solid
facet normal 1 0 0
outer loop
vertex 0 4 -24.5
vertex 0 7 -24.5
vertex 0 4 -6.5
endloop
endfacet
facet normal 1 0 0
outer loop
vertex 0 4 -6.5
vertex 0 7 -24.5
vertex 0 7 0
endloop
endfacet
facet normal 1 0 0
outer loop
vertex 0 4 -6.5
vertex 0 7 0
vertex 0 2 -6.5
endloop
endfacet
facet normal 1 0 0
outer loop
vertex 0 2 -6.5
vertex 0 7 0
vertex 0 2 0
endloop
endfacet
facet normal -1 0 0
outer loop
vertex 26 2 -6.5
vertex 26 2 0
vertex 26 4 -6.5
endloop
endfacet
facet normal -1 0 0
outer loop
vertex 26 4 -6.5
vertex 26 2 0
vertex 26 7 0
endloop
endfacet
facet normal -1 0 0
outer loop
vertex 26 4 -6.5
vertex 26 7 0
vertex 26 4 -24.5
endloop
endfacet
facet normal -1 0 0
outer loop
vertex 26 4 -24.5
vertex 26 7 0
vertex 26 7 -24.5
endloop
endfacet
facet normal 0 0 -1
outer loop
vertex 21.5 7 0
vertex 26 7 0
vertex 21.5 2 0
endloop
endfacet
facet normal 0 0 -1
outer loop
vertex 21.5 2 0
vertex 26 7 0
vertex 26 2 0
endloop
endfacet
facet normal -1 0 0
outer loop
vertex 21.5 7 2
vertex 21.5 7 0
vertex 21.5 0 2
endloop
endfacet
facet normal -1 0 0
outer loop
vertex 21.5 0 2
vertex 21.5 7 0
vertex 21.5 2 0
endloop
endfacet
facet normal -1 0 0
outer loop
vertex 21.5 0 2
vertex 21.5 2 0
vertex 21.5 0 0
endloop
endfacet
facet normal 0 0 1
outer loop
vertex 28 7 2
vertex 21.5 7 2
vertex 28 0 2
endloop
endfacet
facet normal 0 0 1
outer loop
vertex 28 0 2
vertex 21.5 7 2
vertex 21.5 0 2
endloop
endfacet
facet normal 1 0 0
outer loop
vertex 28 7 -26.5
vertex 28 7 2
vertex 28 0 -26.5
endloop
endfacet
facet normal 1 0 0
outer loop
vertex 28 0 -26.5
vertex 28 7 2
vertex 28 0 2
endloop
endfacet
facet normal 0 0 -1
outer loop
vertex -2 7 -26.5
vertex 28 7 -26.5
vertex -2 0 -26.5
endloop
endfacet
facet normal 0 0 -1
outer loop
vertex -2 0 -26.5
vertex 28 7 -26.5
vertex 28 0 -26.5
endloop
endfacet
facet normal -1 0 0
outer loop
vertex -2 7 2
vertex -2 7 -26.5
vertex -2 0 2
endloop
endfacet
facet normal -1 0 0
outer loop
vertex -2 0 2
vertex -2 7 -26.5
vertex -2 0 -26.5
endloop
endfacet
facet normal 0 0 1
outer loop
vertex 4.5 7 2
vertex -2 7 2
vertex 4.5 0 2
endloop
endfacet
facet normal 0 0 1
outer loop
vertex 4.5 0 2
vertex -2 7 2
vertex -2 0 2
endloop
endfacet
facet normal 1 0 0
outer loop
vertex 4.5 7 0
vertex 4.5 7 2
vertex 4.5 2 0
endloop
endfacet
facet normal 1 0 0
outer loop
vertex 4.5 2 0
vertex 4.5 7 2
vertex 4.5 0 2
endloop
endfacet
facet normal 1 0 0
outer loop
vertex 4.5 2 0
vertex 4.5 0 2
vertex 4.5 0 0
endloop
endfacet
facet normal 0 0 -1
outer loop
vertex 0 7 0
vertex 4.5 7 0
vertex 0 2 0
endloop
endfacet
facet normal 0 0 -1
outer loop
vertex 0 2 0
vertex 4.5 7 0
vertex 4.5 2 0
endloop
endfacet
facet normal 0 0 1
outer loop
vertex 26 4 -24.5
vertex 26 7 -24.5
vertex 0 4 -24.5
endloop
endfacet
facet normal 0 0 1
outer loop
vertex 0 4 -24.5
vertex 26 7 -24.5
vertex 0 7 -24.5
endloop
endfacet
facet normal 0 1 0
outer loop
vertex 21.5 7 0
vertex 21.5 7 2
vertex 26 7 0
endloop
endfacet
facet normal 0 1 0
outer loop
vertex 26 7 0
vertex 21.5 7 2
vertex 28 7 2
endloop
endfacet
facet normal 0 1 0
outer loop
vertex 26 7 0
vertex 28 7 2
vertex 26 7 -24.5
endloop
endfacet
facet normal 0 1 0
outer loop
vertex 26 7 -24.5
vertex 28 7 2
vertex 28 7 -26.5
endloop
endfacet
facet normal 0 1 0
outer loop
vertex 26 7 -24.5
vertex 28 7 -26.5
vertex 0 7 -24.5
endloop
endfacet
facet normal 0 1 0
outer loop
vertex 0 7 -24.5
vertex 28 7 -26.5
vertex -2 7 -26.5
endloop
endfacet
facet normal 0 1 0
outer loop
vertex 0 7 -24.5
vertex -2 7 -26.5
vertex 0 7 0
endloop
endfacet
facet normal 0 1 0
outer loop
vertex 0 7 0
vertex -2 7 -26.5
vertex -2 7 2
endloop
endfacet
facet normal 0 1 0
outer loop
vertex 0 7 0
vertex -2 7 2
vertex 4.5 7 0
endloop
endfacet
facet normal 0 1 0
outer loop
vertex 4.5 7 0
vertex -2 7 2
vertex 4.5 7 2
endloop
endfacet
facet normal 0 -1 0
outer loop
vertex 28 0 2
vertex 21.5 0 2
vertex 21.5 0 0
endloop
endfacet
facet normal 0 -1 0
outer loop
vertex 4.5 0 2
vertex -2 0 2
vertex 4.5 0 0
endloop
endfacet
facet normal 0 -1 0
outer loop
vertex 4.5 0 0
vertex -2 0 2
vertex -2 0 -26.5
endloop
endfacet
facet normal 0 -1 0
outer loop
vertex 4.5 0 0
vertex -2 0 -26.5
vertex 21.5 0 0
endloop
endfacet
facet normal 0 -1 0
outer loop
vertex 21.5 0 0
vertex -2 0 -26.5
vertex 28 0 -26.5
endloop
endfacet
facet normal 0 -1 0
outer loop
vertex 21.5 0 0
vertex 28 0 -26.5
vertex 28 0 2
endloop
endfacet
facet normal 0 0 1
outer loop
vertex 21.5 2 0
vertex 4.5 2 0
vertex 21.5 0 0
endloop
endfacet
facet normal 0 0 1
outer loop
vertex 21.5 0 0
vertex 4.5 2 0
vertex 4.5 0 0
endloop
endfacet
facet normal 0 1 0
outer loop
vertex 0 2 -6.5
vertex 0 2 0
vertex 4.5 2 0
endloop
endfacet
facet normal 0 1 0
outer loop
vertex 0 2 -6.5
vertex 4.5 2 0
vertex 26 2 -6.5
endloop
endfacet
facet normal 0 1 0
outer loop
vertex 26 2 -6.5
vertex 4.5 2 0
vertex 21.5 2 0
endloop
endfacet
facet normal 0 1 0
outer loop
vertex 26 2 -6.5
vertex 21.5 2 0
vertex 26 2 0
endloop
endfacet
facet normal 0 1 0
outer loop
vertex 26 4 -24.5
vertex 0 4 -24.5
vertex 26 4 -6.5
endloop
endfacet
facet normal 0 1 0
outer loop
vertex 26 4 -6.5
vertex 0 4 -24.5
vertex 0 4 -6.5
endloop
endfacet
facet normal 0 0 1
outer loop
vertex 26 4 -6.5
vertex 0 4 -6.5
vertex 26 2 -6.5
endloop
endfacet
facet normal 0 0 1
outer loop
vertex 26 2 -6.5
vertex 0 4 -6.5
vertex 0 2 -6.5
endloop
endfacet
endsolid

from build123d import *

# Parameters (mm, degrees)
BOSS_EXTRUDE1_DEPTH = 7
BOSS_EXTRUDE2_DEPTH = 2
SKETCH1_5_W         = 26
SKETCH1_5_H         = 18
BOSS_EXTRUDE3_DEPTH = 4


with BuildPart() as part:
    # Sketch1 → Boss-Extrude1 (new body)
    with BuildSketch(Plane(origin=(0, 0, 0), x_dir=(1, 0, 0), z_dir=(0, 1, 0))):
        Polygon((0, 0), (0, 6.5), (0, 24.5), (26, 24.5), (26, 6.5), (26, 0), (21.5, 0), (21.5, -2), (28, -2), (28, 26.5), (-2, 26.5), (-2, -2), (4.5, -2), (4.5, 0), align=None)
    extrude(amount=BOSS_EXTRUDE1_DEPTH)

    # Sketch1<3> → Boss-Extrude2 (add)
    with BuildSketch(Plane(origin=(0, 0, 0), x_dir=(1, 0, 0), z_dir=(0, 1, 0))):
        Polygon((26, 6.5), (0, 6.5), (0, 0), (4.5, 0), (21.5, 0), (26, 0), align=None)
    extrude(amount=BOSS_EXTRUDE2_DEPTH)

    # Sketch1<5> → Boss-Extrude3 (add)
    with BuildSketch(Plane(origin=(0, 0, 0), x_dir=(1, 0, 0), z_dir=(0, 1, 0))):
        with Locations((13, 15.5)):
            Rectangle(SKETCH1_5_W, SKETCH1_5_H)
    extrude(amount=BOSS_EXTRUDE3_DEPTH)


solid = part.part
